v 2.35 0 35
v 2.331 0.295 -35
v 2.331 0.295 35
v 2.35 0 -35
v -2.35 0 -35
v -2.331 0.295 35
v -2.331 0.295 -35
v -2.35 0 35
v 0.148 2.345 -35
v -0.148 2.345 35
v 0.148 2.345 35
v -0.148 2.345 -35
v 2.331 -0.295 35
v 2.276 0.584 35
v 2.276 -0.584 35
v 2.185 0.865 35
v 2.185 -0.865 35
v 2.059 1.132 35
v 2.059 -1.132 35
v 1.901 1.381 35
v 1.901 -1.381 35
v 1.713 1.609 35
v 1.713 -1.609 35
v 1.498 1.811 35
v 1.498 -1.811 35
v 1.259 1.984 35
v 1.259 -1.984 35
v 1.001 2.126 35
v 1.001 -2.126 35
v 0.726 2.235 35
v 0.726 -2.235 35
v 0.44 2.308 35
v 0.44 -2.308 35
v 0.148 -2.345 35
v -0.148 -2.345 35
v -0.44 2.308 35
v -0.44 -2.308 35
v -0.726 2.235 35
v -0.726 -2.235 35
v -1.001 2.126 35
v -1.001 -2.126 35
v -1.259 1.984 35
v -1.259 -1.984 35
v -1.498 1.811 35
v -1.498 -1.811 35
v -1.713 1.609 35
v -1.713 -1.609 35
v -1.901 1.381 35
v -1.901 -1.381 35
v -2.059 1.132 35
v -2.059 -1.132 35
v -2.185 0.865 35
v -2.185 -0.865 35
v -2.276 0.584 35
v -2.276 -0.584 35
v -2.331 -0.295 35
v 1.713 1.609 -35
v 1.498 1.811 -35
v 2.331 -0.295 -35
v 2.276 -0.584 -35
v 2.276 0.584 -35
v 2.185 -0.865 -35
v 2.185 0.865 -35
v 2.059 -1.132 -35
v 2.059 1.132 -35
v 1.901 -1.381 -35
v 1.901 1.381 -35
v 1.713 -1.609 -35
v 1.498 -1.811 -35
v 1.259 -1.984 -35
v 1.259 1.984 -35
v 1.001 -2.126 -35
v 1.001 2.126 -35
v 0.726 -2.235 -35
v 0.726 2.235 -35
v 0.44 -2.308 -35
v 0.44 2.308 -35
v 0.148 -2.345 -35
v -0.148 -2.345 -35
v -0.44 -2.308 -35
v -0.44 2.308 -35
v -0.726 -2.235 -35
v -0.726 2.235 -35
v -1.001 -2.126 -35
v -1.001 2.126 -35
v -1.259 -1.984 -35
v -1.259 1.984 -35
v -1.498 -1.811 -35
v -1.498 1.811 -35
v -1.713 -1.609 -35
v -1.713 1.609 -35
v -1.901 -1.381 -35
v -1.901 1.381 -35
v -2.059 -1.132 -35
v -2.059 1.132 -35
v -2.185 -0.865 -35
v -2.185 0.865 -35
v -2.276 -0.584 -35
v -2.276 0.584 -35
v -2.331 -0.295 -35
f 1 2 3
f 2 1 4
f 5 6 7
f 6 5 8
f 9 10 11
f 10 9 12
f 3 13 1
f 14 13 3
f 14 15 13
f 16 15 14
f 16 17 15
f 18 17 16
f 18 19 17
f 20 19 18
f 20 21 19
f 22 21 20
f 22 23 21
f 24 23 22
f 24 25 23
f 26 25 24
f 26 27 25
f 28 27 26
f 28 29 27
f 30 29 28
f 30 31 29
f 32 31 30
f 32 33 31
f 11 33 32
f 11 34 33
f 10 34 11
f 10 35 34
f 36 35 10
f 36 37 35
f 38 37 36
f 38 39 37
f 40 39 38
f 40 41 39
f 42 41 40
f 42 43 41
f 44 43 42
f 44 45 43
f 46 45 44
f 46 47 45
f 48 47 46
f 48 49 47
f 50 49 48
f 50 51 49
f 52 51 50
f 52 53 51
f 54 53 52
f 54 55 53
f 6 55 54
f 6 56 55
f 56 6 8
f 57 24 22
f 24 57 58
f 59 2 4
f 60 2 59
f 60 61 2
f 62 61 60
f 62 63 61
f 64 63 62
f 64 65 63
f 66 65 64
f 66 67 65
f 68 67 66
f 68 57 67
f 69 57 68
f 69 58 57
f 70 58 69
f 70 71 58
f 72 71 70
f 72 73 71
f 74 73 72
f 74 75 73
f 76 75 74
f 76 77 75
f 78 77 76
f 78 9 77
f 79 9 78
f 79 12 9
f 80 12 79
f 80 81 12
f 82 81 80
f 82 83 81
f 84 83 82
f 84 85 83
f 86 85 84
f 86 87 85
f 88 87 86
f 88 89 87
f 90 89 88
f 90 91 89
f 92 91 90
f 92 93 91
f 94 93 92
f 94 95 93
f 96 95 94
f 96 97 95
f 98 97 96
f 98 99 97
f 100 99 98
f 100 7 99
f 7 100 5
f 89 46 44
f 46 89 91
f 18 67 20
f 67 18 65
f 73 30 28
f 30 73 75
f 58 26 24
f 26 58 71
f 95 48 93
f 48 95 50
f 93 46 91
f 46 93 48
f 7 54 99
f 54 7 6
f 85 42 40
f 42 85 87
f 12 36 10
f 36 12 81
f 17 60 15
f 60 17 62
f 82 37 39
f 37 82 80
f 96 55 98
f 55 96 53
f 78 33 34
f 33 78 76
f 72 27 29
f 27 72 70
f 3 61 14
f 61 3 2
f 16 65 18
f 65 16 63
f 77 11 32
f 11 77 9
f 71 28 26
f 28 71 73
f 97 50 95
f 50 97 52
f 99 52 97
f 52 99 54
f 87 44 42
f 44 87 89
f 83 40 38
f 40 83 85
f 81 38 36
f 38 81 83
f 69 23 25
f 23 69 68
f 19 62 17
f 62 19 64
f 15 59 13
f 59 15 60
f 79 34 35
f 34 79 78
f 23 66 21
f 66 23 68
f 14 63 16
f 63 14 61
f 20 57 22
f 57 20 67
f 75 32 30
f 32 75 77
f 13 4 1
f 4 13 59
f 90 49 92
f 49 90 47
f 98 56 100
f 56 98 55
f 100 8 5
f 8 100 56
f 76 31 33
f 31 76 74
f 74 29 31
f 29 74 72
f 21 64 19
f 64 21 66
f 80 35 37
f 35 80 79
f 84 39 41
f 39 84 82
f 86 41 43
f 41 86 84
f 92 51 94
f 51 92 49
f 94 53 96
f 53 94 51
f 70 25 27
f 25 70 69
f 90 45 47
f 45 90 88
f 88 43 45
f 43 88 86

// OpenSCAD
$fn = 50;


difference() {
	union() {
		translate(v = [0, 0, -35.0000000000]) {
			cylinder(h = 70, r = 2.3500000000);
		}
	}
	union() {
		translate(v = [0, 0, -100.0000000000]) {
			cylinder(h = 200, r = 0);
		}
	}
}
